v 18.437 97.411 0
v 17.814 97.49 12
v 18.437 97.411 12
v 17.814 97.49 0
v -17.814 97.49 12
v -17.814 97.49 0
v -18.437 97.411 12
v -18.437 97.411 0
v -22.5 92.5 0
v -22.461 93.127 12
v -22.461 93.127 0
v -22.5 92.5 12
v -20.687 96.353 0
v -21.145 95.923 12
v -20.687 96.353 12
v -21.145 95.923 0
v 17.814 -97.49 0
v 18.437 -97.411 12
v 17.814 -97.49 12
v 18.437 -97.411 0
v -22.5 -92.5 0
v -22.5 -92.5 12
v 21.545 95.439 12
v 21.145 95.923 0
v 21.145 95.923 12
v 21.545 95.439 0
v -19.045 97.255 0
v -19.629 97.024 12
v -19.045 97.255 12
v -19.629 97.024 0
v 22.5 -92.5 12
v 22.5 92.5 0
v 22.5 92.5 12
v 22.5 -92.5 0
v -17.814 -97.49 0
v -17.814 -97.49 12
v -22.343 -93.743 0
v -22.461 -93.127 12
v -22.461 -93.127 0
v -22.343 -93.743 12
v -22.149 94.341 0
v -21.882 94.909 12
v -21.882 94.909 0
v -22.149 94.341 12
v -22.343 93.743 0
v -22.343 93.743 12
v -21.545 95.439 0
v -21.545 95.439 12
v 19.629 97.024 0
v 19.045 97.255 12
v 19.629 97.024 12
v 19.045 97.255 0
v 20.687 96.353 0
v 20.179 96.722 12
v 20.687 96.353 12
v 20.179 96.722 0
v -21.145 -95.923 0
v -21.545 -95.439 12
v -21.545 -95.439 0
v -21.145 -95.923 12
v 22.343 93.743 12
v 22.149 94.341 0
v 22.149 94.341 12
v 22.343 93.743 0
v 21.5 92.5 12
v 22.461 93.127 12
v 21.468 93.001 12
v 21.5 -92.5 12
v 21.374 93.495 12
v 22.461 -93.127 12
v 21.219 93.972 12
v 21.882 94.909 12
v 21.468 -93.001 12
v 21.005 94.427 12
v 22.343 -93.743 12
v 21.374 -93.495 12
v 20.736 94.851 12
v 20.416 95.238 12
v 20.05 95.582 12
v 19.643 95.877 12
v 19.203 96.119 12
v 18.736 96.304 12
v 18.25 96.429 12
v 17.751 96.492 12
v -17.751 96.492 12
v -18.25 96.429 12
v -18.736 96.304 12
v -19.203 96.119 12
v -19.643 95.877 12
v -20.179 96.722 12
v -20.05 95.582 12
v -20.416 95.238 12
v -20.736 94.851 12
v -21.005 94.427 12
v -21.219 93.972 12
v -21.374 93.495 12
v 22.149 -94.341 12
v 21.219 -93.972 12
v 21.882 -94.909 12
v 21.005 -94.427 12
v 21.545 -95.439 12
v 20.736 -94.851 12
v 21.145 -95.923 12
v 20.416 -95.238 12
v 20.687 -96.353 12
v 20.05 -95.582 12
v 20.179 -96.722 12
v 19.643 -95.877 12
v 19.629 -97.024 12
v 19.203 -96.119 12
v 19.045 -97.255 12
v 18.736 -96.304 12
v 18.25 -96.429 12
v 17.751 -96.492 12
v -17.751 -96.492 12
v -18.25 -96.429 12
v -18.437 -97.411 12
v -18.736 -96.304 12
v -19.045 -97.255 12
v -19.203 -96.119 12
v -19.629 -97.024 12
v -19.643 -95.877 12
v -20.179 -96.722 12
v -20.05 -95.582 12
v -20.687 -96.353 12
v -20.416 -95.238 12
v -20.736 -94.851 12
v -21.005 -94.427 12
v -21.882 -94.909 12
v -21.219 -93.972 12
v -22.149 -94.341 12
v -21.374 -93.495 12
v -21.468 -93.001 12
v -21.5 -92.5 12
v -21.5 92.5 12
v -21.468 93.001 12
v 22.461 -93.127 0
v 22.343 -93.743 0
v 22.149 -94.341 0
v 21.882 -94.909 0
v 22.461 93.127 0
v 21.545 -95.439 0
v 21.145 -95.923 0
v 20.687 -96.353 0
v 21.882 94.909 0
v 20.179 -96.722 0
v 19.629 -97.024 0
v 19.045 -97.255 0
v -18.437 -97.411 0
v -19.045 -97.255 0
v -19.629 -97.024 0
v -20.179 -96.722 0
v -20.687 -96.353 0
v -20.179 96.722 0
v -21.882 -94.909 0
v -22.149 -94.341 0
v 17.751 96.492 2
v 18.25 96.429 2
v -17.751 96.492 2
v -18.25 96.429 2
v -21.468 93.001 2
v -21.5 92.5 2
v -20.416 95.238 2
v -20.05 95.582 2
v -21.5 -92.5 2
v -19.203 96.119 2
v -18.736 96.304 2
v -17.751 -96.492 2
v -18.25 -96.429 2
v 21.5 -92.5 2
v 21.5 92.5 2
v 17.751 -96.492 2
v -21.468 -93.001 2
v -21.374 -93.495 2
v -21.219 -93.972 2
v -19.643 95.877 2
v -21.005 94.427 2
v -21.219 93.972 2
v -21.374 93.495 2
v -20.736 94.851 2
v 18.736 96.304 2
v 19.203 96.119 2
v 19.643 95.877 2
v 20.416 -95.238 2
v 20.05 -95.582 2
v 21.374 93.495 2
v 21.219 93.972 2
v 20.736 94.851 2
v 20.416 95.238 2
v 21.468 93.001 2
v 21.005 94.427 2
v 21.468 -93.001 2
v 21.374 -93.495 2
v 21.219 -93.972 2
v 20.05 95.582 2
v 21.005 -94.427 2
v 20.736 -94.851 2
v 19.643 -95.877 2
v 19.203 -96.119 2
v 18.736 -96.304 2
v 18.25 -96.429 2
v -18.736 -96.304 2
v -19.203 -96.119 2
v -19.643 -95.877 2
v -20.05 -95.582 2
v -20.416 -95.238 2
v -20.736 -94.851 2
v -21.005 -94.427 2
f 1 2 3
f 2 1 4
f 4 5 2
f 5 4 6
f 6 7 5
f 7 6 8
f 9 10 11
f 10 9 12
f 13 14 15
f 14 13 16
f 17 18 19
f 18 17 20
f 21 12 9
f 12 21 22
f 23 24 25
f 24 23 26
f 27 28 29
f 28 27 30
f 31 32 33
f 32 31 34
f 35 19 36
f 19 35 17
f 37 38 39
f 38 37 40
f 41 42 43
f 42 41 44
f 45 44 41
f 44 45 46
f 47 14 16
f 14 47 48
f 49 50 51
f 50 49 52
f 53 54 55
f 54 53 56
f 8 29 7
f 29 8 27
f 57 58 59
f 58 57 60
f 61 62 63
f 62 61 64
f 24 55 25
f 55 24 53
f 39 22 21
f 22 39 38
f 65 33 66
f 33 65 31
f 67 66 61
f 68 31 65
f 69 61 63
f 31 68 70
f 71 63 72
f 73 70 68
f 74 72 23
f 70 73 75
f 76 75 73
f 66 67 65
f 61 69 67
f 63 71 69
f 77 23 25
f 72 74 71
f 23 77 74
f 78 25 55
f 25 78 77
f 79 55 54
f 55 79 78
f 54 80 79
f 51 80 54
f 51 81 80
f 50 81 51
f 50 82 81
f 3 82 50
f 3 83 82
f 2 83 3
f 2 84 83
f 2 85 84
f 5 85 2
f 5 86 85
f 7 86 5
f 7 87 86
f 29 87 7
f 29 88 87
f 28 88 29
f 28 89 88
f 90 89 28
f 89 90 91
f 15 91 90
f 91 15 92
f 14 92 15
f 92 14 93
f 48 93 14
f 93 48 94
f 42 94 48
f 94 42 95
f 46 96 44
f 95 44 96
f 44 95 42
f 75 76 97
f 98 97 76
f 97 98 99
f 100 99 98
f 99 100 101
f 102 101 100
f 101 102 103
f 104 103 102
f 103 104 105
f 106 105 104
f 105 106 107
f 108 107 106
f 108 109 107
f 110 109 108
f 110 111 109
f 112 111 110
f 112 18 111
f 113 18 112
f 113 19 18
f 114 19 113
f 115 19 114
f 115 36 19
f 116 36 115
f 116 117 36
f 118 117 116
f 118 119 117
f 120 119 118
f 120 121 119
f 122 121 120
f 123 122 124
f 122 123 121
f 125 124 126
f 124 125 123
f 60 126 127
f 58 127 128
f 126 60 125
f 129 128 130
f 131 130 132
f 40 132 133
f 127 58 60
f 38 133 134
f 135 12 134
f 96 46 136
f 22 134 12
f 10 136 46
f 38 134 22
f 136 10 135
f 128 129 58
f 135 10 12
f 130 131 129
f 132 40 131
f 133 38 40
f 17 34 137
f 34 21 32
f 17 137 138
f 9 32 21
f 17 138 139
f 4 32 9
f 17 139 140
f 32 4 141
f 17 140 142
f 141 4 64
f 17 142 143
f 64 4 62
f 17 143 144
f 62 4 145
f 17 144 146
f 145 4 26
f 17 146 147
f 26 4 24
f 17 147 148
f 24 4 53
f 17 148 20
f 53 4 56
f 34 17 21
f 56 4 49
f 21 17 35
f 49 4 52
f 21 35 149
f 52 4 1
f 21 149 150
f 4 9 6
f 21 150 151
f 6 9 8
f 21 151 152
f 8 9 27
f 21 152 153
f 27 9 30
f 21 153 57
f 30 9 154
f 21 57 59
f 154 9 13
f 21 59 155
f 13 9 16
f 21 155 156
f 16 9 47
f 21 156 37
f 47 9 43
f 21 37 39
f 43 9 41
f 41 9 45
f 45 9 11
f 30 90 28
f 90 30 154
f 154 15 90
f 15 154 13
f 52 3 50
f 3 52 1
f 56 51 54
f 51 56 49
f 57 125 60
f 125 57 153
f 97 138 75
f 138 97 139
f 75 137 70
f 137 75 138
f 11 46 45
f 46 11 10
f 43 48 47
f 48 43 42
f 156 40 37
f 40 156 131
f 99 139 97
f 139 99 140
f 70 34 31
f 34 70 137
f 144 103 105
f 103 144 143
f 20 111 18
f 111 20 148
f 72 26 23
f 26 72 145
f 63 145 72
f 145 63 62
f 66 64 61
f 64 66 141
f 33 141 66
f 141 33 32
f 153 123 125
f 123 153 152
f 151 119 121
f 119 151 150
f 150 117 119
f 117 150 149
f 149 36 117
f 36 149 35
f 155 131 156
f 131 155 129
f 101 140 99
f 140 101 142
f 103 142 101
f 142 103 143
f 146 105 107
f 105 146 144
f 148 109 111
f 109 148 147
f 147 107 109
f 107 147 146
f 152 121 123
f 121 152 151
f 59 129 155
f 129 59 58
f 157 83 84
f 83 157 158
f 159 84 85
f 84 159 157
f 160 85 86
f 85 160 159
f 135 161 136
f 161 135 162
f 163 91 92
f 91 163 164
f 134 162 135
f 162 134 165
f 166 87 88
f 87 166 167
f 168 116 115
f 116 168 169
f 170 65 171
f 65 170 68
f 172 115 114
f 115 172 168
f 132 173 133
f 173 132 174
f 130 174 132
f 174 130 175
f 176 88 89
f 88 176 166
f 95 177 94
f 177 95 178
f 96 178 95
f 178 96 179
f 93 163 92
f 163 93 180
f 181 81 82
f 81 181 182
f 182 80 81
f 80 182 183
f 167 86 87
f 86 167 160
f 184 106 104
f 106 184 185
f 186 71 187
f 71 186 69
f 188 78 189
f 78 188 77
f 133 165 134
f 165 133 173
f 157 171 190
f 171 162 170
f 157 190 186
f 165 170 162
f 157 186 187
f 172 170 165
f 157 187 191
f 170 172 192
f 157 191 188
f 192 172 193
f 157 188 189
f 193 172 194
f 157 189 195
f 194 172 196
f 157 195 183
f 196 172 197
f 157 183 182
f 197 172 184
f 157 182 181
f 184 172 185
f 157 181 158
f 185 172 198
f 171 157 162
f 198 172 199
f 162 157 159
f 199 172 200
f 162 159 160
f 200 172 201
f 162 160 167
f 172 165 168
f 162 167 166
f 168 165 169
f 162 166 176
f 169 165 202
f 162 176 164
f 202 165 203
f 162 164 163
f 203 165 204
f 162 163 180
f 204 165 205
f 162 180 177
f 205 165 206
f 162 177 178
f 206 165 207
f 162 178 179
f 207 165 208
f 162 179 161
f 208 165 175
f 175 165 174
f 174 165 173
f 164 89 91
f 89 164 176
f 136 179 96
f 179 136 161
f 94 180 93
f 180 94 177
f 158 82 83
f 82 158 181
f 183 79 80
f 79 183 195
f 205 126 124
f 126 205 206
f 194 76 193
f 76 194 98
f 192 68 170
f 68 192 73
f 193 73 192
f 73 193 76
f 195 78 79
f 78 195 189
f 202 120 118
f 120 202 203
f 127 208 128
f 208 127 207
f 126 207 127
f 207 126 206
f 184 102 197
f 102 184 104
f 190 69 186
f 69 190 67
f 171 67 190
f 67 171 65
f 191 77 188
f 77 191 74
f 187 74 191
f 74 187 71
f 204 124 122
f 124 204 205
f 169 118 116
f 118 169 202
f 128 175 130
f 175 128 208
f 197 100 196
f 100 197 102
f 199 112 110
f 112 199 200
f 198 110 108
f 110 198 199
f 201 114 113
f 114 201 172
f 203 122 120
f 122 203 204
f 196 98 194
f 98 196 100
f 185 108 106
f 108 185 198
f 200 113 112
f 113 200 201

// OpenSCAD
$fn = 50;


difference() {
	union() {
		hull() {
			translate(v = [-17.5000000000, 92.5000000000, 0]) {
				cylinder(h = 12, r = 5);
			}
			translate(v = [17.5000000000, 92.5000000000, 0]) {
				cylinder(h = 12, r = 5);
			}
			translate(v = [-17.5000000000, -92.5000000000, 0]) {
				cylinder(h = 12, r = 5);
			}
			translate(v = [17.5000000000, -92.5000000000, 0]) {
				cylinder(h = 12, r = 5);
			}
		}
	}
	union() {
		translate(v = [0, 0, 2]) {
			hull() {
				translate(v = [-17.5000000000, 92.5000000000, 0]) {
					cylinder(h = 10, r = 4);
				}
				translate(v = [17.5000000000, 92.5000000000, 0]) {
					cylinder(h = 10, r = 4);
				}
				translate(v = [-17.5000000000, -92.5000000000, 0]) {
					cylinder(h = 10, r = 4);
				}
				translate(v = [17.5000000000, -92.5000000000, 0]) {
					cylinder(h = 10, r = 4);
				}
			}
		}
	}
}
